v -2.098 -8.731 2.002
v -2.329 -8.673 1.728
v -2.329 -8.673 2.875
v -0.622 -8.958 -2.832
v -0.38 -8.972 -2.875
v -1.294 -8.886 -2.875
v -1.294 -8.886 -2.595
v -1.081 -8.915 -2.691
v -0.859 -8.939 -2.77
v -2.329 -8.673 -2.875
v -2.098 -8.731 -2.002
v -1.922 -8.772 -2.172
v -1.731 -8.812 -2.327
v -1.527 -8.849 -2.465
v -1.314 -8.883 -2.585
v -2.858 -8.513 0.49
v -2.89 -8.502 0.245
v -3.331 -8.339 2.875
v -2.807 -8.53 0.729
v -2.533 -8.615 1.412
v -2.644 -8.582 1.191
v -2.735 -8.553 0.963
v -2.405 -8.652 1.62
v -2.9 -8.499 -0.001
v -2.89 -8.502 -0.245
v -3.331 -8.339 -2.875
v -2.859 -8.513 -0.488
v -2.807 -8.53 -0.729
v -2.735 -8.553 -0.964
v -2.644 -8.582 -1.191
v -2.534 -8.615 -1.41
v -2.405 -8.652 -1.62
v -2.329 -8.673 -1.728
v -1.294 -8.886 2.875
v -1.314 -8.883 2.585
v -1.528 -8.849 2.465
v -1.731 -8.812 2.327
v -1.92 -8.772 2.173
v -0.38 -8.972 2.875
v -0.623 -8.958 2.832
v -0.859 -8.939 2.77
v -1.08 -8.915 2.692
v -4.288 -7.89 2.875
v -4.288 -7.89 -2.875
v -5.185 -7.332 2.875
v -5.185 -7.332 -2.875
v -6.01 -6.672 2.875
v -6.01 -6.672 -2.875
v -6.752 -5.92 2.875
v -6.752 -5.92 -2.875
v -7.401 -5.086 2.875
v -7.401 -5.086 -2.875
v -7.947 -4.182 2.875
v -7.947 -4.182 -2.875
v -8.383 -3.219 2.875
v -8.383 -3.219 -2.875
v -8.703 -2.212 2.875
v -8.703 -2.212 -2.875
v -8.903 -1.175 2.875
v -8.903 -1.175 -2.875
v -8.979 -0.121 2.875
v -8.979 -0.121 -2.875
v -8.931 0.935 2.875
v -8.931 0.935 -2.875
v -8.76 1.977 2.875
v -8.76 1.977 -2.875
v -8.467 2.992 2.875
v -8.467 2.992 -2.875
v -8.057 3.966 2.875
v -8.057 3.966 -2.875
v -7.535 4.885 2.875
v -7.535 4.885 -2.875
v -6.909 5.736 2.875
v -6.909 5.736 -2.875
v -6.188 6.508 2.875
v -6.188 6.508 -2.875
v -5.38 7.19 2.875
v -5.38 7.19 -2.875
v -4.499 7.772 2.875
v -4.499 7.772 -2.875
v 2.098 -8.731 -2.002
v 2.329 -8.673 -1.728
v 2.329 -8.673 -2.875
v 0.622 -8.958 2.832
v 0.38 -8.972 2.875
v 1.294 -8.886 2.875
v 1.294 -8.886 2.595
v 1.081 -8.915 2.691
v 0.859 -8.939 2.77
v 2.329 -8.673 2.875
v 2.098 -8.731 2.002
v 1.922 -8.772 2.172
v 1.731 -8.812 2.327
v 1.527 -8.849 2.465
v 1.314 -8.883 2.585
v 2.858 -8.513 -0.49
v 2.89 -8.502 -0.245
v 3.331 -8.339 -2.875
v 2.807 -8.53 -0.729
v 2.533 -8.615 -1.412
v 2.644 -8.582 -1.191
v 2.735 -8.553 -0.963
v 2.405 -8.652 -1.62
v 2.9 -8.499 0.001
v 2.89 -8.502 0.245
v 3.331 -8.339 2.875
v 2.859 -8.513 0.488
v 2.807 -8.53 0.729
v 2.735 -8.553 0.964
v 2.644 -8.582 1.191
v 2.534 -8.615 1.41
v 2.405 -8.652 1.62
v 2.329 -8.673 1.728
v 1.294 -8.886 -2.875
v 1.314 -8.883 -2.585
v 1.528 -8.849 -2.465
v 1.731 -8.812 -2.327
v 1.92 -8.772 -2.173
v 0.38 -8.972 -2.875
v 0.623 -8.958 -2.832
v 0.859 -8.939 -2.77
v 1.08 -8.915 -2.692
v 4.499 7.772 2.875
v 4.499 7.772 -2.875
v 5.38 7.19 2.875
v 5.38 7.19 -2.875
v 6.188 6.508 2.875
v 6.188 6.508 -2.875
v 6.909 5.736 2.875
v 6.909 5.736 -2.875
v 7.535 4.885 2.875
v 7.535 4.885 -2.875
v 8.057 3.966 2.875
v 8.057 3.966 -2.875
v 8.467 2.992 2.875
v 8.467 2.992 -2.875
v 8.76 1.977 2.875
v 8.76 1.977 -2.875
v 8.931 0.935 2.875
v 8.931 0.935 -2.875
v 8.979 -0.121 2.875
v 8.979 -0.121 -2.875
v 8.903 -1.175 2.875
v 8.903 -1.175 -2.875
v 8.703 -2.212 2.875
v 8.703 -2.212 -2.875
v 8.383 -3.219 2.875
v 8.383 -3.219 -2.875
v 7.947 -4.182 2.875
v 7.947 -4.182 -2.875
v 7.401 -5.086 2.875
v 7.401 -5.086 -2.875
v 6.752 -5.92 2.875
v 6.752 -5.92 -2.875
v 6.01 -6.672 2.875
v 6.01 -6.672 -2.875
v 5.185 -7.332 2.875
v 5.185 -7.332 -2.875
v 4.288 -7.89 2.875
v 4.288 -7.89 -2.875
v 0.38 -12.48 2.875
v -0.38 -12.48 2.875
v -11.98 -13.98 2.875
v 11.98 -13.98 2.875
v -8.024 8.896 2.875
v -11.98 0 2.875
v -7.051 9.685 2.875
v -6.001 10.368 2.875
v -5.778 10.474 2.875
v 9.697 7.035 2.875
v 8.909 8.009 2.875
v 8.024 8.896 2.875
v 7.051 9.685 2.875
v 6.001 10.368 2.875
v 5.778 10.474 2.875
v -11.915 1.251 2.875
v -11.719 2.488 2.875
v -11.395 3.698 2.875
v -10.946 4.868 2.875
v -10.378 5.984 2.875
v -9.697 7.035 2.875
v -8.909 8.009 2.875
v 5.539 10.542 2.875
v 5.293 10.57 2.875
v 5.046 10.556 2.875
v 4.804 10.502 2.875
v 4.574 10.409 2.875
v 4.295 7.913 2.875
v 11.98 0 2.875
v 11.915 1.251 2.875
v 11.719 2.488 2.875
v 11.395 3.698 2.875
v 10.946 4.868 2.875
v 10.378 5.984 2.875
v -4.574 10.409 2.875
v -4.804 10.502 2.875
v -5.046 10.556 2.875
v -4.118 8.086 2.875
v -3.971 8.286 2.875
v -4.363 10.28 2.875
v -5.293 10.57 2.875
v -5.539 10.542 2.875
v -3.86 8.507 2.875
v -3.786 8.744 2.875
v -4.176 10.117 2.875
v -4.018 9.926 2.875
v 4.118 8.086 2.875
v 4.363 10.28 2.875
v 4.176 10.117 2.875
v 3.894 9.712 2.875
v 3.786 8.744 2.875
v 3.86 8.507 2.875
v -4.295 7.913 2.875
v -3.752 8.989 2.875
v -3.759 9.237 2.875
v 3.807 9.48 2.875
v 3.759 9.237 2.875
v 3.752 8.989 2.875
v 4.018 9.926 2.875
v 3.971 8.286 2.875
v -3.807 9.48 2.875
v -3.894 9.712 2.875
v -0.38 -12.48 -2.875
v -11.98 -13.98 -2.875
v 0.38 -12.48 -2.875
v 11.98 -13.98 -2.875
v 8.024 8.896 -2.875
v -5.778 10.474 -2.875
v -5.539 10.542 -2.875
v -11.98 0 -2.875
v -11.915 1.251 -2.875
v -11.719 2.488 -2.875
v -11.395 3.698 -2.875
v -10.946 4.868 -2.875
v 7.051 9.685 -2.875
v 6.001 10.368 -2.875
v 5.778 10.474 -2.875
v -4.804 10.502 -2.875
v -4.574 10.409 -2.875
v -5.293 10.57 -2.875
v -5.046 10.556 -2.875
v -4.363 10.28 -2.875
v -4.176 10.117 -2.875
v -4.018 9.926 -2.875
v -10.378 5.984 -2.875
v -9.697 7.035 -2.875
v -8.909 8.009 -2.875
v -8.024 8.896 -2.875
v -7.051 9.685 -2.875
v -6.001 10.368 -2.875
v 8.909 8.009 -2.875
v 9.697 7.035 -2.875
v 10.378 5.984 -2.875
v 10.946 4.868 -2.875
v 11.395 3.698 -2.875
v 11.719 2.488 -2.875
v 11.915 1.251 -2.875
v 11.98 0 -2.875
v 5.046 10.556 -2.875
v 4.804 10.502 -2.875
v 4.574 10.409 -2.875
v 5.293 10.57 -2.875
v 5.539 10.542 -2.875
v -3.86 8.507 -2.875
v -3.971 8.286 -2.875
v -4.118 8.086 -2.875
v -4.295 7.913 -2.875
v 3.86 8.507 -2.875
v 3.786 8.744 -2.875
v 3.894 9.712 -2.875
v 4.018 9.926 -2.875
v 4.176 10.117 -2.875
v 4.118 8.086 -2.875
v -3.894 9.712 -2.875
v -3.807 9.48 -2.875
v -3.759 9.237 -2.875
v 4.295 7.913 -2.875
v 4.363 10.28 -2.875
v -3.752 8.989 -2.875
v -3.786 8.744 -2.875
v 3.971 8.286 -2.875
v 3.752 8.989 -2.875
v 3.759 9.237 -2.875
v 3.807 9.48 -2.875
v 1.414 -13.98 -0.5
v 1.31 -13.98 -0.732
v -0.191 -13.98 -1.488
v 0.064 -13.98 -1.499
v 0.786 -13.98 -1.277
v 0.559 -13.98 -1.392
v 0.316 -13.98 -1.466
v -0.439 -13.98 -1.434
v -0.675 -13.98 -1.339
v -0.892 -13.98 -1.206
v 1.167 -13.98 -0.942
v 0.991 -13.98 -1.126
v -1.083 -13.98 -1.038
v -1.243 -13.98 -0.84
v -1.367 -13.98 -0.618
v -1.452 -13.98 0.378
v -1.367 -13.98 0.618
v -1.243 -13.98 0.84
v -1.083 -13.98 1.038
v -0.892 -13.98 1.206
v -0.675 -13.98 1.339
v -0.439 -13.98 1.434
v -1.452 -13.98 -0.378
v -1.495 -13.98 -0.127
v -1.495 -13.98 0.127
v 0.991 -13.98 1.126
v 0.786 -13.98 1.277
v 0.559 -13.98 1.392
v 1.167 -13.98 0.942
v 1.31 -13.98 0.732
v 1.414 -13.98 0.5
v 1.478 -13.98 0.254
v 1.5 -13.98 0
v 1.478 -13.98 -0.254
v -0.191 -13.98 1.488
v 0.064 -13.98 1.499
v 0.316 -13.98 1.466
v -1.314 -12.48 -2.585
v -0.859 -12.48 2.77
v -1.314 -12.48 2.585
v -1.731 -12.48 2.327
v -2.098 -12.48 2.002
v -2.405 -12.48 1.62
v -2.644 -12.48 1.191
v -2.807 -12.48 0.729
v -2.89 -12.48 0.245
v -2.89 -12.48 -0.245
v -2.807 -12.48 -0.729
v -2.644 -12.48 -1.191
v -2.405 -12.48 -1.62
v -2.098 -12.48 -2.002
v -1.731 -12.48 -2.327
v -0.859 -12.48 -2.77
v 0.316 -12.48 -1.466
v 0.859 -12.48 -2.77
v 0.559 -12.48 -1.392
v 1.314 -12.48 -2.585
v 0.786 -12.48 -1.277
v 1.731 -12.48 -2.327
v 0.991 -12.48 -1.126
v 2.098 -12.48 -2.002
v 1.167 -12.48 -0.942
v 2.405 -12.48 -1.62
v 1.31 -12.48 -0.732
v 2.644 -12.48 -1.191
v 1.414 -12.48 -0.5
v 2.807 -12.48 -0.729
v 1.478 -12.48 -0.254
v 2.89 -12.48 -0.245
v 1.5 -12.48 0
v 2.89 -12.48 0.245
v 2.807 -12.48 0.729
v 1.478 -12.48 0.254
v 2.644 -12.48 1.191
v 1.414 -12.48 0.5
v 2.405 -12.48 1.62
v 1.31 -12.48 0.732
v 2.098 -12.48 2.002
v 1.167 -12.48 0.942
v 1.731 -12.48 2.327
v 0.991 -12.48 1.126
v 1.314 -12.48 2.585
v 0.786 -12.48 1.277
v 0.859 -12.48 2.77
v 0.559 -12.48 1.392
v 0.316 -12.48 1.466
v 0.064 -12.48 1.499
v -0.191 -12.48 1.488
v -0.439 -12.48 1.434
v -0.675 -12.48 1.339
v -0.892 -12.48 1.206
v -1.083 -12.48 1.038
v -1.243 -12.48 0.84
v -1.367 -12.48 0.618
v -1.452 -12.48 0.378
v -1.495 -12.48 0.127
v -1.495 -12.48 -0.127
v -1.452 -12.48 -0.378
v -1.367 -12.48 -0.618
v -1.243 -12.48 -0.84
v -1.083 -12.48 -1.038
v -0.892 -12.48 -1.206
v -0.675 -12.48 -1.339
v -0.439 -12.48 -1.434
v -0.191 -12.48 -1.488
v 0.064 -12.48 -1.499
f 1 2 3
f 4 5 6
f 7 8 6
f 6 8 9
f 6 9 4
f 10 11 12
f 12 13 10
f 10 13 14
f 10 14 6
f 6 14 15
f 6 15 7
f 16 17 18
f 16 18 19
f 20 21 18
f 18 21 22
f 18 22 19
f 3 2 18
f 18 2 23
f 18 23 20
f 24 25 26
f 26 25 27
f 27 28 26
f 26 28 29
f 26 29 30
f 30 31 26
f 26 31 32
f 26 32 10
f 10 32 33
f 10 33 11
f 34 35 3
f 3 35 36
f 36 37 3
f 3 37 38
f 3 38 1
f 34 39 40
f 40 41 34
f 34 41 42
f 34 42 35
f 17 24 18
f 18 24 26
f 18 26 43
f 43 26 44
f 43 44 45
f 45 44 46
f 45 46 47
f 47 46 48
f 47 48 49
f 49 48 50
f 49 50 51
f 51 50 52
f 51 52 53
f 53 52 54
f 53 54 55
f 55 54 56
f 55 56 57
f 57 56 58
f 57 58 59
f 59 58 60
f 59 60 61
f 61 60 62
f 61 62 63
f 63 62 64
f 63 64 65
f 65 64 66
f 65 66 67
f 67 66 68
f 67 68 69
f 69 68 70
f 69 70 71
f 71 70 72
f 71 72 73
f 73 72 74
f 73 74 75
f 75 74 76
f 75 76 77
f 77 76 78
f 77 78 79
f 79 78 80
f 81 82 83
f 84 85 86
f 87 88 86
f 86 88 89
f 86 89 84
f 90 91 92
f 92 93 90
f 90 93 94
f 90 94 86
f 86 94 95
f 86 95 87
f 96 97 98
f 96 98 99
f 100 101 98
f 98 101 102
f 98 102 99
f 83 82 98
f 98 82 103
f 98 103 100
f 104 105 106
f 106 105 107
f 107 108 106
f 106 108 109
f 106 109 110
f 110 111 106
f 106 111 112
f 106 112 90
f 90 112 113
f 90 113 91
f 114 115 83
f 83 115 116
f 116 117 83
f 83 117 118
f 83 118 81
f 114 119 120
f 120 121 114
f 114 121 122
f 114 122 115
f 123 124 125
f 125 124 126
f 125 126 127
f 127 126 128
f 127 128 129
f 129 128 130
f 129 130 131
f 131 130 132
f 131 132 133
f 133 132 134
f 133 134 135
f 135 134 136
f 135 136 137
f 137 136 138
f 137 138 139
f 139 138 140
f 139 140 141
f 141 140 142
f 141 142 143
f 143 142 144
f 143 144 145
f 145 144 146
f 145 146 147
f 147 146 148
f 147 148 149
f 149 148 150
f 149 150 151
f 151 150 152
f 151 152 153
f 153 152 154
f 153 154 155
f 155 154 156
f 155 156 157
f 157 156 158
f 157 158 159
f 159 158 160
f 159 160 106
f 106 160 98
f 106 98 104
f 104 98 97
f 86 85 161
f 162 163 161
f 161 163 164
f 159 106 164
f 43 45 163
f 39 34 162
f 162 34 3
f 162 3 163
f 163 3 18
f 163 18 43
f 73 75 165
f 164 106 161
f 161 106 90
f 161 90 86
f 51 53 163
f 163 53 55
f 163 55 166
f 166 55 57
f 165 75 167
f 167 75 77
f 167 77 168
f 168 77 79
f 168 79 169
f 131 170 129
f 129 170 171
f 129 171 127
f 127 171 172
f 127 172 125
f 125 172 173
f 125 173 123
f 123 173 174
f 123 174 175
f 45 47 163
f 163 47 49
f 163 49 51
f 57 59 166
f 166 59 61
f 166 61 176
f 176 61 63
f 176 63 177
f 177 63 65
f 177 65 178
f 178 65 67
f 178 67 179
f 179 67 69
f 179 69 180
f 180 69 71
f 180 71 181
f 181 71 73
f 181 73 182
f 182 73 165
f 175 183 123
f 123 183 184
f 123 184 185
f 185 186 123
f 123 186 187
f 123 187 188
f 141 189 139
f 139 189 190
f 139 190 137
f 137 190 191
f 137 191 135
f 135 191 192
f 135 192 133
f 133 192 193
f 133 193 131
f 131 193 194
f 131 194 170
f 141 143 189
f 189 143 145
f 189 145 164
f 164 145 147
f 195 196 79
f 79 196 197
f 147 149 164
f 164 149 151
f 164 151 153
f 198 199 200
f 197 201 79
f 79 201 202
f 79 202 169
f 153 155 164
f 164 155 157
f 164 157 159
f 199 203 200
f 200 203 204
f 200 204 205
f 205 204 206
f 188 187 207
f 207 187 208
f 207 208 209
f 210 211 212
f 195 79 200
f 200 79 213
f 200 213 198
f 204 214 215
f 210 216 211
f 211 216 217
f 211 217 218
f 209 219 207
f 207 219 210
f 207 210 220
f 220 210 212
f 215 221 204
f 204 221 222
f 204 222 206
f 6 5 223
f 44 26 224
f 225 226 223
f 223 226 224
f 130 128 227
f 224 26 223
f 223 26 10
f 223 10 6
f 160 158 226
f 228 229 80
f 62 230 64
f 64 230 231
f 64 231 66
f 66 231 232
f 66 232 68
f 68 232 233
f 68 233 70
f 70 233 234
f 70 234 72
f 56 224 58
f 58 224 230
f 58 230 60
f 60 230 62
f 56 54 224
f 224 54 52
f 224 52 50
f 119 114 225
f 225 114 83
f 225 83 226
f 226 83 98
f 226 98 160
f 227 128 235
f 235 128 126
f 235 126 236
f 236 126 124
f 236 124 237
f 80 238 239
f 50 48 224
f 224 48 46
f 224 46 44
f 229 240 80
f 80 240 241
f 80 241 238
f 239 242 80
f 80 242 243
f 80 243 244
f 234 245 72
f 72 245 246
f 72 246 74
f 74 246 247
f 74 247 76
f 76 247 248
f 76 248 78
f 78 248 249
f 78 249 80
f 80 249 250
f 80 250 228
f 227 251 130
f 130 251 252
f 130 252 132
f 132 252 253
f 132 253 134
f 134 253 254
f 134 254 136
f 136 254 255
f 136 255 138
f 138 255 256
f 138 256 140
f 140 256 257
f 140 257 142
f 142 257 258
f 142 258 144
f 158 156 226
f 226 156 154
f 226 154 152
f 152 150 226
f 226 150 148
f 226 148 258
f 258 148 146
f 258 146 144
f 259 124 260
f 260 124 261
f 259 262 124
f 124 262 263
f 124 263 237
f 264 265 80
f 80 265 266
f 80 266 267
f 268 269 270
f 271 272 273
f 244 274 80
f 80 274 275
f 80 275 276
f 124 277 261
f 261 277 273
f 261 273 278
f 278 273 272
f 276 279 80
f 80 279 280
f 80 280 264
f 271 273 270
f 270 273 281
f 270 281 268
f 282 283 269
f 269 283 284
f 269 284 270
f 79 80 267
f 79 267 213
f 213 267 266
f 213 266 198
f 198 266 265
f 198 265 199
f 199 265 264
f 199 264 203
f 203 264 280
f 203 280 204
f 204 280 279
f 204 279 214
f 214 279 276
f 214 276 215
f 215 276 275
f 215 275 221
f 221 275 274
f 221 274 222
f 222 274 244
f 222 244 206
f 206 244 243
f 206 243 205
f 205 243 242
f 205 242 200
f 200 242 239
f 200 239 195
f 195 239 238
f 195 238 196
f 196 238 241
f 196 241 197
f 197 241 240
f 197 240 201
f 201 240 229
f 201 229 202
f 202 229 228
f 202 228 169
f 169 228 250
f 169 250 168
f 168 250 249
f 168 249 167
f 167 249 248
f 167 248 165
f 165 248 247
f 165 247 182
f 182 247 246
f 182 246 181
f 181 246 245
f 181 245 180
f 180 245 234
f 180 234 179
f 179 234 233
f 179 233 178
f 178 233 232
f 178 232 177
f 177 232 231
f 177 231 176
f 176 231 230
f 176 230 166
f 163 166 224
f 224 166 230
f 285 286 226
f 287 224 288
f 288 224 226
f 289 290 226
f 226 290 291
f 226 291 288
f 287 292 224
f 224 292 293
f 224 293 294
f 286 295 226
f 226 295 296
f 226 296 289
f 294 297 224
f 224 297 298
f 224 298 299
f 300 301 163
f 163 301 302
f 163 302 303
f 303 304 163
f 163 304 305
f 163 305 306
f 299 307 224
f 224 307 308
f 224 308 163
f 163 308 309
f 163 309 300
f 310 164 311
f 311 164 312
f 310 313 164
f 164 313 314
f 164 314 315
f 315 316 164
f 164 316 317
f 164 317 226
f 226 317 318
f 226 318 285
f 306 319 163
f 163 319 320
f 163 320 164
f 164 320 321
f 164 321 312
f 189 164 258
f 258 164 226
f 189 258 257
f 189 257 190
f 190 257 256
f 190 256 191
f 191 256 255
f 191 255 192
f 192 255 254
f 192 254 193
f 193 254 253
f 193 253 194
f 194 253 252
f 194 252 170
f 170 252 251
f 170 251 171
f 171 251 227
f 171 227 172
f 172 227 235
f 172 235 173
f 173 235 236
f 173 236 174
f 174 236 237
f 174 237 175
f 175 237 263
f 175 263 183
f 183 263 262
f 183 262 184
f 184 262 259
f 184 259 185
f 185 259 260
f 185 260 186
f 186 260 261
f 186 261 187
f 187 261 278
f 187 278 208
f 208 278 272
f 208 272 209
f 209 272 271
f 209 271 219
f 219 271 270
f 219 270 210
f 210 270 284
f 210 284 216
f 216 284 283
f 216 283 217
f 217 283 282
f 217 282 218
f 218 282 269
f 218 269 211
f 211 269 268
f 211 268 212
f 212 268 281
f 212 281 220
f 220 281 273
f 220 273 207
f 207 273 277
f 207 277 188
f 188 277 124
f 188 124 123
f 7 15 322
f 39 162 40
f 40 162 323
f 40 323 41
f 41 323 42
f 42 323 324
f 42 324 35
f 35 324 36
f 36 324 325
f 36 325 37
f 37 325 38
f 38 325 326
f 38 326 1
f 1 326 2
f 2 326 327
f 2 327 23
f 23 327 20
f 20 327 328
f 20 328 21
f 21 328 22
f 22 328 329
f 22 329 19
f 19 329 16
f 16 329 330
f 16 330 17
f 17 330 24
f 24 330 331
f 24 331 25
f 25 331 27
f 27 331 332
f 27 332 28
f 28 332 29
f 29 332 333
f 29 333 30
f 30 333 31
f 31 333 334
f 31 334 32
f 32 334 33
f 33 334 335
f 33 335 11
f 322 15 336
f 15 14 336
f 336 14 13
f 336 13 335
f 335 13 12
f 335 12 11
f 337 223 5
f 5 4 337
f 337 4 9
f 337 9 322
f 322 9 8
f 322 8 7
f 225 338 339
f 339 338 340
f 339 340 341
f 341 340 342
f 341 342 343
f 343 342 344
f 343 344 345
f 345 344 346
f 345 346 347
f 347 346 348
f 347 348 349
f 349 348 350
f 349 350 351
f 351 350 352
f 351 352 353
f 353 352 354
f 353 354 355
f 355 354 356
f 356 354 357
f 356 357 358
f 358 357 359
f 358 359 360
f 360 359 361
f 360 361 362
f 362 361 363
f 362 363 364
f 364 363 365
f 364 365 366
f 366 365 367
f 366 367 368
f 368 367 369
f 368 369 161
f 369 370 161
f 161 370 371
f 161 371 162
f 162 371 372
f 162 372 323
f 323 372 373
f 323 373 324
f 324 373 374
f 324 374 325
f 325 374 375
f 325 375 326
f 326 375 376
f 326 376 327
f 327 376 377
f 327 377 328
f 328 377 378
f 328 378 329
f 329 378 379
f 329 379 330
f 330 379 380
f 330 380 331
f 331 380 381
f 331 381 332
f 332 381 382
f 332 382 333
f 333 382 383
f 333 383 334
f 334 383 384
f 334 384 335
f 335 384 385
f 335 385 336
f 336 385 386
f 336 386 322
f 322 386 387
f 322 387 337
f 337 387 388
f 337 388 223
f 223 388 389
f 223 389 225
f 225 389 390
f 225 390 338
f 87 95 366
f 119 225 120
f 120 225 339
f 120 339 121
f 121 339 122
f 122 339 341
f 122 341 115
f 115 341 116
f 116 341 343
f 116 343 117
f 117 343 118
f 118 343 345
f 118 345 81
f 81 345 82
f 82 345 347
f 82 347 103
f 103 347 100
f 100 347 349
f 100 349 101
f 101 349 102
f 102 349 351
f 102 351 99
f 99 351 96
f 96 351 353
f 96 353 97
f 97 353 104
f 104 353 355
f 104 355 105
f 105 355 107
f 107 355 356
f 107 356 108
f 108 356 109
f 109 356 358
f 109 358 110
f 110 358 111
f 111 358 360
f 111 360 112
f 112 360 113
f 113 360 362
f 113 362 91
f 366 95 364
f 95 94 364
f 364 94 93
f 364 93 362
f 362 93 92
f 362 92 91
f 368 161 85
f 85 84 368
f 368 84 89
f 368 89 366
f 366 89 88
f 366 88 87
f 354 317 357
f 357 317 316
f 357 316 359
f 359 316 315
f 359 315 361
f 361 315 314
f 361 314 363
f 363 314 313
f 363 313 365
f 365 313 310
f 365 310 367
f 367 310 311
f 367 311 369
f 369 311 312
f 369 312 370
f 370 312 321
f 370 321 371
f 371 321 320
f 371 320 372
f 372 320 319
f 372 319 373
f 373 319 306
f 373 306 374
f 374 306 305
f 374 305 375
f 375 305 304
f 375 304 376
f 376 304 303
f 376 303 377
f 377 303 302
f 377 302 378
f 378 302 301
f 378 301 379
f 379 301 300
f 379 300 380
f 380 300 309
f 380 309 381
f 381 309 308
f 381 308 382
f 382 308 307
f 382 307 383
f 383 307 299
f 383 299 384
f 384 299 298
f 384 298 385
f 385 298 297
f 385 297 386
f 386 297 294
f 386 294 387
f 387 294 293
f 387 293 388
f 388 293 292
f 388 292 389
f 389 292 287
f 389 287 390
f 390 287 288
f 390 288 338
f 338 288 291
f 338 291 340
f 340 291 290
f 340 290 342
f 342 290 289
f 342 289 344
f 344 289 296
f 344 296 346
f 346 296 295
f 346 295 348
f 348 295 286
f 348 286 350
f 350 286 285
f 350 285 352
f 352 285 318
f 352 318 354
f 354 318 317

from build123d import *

# Parameters (mm, degrees)
BOSS_EXTRUDE1_DEPTH = 2.875


with BuildPart() as part:
    # Sketch1 → Boss-Extrude1 (new body, symmetric)
    with BuildSketch(Plane.XY):
        with BuildLine():
            Line((-11.98, -13.98), (11.98, -13.98))
            Line((11.98, -13.98), (11.98, 0))
            ThreePointArc((11.98, 0), (10.378283744, 5.984281622), (6.001431298, 10.368376072))
            ThreePointArc((6.001431298, 10.368376072), (3.951789306, 9.821596677), (4.498568702, 7.771954685))
            ThreePointArc((4.498568702, 7.771954685), (4.485713603, -7.779381304), (-8.98, 0))
            ThreePointArc((-8.98, 0), (-7.779381304, 4.485713603), (-4.498568702, 7.771954685))
            ThreePointArc((-4.498568702, 7.771954685), (-3.951789306, 9.821596677), (-6.001431298, 10.368376072))
            ThreePointArc((-6.001431298, 10.368376072), (-10.378283744, 5.984281622), (-11.98, 0))
            Line((-11.98, 0), (-11.98, -13.98))
        make_face()
    extrude(amount=BOSS_EXTRUDE1_DEPTH, both=True)

    # Sketch4 one side → Cut-Revolve1 (revolve, cut)
    with BuildSketch(Plane.XY):
        Polygon((-1.5, -13.98), (0, -13.98), (0, -7.48), (-2.9, -7.48), (-2.9, -12.48), (-1.5, -12.48), align=None)
    revolve(axis=Axis((0, -13.98, 0), (0, 1, 0)), mode=Mode.SUBTRACT)


solid = part.part
